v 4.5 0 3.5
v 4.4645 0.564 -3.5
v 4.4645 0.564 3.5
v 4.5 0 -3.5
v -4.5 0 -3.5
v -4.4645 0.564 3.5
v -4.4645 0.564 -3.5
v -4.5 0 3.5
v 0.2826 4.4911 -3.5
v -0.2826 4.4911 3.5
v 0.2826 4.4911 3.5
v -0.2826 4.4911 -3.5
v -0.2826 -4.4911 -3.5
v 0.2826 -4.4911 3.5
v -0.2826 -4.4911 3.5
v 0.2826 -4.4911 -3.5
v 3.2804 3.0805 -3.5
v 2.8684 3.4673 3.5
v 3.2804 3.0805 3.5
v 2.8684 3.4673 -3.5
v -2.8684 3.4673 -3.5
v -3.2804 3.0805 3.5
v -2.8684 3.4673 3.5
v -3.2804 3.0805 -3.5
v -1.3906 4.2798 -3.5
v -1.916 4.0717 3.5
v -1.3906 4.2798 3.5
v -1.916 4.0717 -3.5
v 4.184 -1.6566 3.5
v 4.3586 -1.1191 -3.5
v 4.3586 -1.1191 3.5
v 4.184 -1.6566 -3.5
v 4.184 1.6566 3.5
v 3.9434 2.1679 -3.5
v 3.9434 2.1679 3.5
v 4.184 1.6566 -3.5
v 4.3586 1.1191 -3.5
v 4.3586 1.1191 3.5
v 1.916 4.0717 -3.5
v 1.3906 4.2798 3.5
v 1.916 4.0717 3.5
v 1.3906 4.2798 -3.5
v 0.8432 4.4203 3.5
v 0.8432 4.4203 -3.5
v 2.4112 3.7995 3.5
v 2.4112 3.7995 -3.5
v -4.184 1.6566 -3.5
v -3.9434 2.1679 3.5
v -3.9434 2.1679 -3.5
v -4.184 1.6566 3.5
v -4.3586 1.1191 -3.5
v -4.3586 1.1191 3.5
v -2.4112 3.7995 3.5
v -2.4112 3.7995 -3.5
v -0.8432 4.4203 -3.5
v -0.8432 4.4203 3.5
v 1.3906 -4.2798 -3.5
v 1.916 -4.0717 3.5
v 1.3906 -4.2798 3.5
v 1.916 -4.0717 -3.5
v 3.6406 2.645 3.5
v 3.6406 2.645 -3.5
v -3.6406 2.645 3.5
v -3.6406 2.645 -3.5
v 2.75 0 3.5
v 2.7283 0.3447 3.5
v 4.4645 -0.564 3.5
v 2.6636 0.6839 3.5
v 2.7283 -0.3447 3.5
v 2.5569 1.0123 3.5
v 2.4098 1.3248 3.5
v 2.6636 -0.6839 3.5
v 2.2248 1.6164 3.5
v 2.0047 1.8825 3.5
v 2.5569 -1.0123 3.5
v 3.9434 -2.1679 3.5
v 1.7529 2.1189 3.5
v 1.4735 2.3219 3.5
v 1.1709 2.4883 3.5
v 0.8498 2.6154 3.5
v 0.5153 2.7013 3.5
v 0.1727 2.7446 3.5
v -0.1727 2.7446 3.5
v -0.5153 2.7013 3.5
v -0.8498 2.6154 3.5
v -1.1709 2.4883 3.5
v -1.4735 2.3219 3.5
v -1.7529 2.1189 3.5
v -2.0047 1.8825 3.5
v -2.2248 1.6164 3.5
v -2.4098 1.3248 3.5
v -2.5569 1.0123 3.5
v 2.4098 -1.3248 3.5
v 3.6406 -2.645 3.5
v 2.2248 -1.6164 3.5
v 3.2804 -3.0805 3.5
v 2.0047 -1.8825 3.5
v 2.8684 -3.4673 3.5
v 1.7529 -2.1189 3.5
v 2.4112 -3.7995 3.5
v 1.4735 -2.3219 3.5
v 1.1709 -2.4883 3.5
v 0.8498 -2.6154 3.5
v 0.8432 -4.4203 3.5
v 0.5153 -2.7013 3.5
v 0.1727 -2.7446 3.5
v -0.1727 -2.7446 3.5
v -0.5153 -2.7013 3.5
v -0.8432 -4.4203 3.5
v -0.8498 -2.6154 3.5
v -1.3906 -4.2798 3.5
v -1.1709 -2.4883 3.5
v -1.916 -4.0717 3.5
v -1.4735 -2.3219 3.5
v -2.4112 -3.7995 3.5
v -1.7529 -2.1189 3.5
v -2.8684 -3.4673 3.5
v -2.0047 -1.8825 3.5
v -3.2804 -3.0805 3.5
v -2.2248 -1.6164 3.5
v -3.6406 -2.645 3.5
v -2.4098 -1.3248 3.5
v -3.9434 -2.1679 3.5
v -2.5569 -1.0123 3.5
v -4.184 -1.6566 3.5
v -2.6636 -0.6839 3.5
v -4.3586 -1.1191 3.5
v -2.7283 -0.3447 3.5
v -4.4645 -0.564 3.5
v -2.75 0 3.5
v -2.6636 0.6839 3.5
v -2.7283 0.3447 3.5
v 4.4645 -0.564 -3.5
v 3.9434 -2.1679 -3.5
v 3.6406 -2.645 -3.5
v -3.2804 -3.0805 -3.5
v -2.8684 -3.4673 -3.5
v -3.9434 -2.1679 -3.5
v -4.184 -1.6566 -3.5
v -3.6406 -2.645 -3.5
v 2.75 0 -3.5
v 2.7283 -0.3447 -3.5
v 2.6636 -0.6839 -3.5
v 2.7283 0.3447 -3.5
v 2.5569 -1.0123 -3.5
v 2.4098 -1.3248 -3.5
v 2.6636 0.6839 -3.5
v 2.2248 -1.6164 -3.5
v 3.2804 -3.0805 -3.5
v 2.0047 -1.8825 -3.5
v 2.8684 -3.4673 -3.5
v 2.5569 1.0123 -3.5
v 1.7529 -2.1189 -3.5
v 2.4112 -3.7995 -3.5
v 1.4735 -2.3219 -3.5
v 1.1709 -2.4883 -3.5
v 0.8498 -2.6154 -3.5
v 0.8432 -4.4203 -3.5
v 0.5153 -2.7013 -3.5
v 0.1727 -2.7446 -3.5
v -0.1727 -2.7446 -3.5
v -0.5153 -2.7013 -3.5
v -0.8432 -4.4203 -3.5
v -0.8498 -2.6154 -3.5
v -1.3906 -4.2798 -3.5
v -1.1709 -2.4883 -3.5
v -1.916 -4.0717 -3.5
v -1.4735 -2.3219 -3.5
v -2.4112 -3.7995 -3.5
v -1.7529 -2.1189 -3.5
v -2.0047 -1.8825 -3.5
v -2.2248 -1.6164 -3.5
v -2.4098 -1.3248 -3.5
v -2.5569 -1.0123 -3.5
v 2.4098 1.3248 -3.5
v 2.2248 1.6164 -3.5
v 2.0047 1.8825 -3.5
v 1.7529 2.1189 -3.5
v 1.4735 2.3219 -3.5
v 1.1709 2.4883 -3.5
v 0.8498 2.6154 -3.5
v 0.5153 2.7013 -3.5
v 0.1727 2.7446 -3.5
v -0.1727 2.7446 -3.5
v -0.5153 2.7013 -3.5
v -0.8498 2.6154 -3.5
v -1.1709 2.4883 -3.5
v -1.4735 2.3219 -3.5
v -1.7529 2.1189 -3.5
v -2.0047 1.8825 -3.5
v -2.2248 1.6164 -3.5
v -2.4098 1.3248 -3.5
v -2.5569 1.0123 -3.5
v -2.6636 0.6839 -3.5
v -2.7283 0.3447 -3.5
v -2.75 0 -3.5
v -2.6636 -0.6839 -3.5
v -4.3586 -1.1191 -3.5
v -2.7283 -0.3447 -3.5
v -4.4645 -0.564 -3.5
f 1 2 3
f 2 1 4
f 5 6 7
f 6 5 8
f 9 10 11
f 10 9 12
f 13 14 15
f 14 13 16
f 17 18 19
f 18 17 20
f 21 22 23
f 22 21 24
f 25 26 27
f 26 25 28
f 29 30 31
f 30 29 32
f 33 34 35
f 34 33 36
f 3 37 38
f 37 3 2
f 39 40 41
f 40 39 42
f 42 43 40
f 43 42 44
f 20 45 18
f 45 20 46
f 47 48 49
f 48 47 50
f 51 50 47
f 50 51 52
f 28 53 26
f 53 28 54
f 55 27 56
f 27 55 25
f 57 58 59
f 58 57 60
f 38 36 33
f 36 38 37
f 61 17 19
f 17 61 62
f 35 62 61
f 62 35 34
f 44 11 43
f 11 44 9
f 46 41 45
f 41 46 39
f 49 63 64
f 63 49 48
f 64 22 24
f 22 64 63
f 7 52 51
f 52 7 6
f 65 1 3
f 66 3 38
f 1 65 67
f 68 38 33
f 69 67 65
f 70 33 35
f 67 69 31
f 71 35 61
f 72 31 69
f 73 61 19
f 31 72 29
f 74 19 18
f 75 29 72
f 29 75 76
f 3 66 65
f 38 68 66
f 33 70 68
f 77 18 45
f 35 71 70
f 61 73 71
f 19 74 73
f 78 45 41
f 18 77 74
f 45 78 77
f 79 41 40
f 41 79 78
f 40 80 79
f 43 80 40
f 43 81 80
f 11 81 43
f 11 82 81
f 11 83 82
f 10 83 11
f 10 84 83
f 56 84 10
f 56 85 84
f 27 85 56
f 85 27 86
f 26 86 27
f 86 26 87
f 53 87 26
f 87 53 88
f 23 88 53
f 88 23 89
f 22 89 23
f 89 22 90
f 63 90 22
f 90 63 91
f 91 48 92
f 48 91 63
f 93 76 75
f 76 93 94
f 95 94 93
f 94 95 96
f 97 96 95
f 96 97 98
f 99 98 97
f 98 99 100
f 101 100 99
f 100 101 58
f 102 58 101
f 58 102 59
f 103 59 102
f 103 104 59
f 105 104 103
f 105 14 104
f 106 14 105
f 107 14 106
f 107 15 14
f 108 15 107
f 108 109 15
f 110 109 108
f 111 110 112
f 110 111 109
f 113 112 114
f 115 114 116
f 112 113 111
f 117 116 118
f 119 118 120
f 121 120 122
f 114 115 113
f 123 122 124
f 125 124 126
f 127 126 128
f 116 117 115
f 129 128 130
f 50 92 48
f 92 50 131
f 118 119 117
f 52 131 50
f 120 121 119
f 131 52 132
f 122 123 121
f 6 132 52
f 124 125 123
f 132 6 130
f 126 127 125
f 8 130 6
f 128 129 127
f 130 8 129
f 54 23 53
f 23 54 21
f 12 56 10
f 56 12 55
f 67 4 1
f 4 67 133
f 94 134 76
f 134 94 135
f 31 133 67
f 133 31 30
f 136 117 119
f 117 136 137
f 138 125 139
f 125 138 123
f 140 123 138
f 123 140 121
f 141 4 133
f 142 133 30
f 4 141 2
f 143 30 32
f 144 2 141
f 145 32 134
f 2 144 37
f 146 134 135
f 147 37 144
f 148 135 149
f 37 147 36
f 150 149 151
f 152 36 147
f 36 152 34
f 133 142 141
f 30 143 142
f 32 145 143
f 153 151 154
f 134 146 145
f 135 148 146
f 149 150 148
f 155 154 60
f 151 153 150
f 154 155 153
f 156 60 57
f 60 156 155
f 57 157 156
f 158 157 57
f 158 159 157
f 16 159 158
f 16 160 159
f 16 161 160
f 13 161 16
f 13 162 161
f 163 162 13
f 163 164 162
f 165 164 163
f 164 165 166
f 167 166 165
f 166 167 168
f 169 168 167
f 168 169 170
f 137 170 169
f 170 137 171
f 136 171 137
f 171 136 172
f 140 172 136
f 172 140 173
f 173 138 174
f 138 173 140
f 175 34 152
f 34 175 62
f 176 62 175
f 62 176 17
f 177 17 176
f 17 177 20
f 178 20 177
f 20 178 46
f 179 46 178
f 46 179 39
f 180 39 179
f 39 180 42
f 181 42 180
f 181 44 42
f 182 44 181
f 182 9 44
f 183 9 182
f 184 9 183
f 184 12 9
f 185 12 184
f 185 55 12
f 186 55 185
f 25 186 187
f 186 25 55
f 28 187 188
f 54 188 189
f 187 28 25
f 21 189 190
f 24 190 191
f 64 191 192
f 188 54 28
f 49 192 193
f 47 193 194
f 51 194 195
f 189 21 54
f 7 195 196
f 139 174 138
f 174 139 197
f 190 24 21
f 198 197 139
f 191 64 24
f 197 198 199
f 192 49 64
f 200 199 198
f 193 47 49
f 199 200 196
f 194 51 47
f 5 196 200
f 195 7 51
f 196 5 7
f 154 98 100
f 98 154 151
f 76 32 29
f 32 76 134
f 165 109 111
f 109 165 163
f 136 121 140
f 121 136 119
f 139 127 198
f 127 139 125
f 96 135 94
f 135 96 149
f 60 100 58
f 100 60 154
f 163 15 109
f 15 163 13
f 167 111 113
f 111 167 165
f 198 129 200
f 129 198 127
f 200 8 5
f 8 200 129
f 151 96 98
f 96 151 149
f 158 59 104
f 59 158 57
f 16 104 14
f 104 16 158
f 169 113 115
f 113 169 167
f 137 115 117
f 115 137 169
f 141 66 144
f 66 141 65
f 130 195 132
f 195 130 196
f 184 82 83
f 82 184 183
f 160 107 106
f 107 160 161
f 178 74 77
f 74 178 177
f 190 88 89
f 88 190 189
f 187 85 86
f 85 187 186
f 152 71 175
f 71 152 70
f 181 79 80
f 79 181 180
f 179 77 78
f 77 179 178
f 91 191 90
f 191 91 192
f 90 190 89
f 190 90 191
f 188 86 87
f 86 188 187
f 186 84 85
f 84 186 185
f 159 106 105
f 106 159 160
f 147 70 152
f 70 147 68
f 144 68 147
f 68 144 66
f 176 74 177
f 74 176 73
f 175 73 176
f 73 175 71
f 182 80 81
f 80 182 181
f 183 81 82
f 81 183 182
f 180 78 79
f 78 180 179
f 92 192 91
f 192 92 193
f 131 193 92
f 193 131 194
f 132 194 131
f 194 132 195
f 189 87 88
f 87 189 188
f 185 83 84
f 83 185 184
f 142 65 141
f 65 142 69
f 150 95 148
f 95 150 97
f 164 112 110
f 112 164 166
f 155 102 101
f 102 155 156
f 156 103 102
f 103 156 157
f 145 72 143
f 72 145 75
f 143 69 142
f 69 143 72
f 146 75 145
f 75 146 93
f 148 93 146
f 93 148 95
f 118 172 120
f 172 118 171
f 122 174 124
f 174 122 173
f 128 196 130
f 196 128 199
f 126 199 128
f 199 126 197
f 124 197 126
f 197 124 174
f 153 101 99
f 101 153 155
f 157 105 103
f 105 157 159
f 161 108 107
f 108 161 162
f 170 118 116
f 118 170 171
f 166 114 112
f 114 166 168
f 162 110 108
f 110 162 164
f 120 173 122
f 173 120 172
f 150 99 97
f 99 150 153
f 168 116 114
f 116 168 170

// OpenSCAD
$fn = 50;


difference() {
	union() {
		translate(v = [0, 0, -3.5000000000]) {
			cylinder(h = 7, r = 4.5000000000);
		}
	}
	union() {
		translate(v = [0, 0, -100.0000000000]) {
			cylinder(h = 200, r = 2.7500000000);
		}
	}
}
